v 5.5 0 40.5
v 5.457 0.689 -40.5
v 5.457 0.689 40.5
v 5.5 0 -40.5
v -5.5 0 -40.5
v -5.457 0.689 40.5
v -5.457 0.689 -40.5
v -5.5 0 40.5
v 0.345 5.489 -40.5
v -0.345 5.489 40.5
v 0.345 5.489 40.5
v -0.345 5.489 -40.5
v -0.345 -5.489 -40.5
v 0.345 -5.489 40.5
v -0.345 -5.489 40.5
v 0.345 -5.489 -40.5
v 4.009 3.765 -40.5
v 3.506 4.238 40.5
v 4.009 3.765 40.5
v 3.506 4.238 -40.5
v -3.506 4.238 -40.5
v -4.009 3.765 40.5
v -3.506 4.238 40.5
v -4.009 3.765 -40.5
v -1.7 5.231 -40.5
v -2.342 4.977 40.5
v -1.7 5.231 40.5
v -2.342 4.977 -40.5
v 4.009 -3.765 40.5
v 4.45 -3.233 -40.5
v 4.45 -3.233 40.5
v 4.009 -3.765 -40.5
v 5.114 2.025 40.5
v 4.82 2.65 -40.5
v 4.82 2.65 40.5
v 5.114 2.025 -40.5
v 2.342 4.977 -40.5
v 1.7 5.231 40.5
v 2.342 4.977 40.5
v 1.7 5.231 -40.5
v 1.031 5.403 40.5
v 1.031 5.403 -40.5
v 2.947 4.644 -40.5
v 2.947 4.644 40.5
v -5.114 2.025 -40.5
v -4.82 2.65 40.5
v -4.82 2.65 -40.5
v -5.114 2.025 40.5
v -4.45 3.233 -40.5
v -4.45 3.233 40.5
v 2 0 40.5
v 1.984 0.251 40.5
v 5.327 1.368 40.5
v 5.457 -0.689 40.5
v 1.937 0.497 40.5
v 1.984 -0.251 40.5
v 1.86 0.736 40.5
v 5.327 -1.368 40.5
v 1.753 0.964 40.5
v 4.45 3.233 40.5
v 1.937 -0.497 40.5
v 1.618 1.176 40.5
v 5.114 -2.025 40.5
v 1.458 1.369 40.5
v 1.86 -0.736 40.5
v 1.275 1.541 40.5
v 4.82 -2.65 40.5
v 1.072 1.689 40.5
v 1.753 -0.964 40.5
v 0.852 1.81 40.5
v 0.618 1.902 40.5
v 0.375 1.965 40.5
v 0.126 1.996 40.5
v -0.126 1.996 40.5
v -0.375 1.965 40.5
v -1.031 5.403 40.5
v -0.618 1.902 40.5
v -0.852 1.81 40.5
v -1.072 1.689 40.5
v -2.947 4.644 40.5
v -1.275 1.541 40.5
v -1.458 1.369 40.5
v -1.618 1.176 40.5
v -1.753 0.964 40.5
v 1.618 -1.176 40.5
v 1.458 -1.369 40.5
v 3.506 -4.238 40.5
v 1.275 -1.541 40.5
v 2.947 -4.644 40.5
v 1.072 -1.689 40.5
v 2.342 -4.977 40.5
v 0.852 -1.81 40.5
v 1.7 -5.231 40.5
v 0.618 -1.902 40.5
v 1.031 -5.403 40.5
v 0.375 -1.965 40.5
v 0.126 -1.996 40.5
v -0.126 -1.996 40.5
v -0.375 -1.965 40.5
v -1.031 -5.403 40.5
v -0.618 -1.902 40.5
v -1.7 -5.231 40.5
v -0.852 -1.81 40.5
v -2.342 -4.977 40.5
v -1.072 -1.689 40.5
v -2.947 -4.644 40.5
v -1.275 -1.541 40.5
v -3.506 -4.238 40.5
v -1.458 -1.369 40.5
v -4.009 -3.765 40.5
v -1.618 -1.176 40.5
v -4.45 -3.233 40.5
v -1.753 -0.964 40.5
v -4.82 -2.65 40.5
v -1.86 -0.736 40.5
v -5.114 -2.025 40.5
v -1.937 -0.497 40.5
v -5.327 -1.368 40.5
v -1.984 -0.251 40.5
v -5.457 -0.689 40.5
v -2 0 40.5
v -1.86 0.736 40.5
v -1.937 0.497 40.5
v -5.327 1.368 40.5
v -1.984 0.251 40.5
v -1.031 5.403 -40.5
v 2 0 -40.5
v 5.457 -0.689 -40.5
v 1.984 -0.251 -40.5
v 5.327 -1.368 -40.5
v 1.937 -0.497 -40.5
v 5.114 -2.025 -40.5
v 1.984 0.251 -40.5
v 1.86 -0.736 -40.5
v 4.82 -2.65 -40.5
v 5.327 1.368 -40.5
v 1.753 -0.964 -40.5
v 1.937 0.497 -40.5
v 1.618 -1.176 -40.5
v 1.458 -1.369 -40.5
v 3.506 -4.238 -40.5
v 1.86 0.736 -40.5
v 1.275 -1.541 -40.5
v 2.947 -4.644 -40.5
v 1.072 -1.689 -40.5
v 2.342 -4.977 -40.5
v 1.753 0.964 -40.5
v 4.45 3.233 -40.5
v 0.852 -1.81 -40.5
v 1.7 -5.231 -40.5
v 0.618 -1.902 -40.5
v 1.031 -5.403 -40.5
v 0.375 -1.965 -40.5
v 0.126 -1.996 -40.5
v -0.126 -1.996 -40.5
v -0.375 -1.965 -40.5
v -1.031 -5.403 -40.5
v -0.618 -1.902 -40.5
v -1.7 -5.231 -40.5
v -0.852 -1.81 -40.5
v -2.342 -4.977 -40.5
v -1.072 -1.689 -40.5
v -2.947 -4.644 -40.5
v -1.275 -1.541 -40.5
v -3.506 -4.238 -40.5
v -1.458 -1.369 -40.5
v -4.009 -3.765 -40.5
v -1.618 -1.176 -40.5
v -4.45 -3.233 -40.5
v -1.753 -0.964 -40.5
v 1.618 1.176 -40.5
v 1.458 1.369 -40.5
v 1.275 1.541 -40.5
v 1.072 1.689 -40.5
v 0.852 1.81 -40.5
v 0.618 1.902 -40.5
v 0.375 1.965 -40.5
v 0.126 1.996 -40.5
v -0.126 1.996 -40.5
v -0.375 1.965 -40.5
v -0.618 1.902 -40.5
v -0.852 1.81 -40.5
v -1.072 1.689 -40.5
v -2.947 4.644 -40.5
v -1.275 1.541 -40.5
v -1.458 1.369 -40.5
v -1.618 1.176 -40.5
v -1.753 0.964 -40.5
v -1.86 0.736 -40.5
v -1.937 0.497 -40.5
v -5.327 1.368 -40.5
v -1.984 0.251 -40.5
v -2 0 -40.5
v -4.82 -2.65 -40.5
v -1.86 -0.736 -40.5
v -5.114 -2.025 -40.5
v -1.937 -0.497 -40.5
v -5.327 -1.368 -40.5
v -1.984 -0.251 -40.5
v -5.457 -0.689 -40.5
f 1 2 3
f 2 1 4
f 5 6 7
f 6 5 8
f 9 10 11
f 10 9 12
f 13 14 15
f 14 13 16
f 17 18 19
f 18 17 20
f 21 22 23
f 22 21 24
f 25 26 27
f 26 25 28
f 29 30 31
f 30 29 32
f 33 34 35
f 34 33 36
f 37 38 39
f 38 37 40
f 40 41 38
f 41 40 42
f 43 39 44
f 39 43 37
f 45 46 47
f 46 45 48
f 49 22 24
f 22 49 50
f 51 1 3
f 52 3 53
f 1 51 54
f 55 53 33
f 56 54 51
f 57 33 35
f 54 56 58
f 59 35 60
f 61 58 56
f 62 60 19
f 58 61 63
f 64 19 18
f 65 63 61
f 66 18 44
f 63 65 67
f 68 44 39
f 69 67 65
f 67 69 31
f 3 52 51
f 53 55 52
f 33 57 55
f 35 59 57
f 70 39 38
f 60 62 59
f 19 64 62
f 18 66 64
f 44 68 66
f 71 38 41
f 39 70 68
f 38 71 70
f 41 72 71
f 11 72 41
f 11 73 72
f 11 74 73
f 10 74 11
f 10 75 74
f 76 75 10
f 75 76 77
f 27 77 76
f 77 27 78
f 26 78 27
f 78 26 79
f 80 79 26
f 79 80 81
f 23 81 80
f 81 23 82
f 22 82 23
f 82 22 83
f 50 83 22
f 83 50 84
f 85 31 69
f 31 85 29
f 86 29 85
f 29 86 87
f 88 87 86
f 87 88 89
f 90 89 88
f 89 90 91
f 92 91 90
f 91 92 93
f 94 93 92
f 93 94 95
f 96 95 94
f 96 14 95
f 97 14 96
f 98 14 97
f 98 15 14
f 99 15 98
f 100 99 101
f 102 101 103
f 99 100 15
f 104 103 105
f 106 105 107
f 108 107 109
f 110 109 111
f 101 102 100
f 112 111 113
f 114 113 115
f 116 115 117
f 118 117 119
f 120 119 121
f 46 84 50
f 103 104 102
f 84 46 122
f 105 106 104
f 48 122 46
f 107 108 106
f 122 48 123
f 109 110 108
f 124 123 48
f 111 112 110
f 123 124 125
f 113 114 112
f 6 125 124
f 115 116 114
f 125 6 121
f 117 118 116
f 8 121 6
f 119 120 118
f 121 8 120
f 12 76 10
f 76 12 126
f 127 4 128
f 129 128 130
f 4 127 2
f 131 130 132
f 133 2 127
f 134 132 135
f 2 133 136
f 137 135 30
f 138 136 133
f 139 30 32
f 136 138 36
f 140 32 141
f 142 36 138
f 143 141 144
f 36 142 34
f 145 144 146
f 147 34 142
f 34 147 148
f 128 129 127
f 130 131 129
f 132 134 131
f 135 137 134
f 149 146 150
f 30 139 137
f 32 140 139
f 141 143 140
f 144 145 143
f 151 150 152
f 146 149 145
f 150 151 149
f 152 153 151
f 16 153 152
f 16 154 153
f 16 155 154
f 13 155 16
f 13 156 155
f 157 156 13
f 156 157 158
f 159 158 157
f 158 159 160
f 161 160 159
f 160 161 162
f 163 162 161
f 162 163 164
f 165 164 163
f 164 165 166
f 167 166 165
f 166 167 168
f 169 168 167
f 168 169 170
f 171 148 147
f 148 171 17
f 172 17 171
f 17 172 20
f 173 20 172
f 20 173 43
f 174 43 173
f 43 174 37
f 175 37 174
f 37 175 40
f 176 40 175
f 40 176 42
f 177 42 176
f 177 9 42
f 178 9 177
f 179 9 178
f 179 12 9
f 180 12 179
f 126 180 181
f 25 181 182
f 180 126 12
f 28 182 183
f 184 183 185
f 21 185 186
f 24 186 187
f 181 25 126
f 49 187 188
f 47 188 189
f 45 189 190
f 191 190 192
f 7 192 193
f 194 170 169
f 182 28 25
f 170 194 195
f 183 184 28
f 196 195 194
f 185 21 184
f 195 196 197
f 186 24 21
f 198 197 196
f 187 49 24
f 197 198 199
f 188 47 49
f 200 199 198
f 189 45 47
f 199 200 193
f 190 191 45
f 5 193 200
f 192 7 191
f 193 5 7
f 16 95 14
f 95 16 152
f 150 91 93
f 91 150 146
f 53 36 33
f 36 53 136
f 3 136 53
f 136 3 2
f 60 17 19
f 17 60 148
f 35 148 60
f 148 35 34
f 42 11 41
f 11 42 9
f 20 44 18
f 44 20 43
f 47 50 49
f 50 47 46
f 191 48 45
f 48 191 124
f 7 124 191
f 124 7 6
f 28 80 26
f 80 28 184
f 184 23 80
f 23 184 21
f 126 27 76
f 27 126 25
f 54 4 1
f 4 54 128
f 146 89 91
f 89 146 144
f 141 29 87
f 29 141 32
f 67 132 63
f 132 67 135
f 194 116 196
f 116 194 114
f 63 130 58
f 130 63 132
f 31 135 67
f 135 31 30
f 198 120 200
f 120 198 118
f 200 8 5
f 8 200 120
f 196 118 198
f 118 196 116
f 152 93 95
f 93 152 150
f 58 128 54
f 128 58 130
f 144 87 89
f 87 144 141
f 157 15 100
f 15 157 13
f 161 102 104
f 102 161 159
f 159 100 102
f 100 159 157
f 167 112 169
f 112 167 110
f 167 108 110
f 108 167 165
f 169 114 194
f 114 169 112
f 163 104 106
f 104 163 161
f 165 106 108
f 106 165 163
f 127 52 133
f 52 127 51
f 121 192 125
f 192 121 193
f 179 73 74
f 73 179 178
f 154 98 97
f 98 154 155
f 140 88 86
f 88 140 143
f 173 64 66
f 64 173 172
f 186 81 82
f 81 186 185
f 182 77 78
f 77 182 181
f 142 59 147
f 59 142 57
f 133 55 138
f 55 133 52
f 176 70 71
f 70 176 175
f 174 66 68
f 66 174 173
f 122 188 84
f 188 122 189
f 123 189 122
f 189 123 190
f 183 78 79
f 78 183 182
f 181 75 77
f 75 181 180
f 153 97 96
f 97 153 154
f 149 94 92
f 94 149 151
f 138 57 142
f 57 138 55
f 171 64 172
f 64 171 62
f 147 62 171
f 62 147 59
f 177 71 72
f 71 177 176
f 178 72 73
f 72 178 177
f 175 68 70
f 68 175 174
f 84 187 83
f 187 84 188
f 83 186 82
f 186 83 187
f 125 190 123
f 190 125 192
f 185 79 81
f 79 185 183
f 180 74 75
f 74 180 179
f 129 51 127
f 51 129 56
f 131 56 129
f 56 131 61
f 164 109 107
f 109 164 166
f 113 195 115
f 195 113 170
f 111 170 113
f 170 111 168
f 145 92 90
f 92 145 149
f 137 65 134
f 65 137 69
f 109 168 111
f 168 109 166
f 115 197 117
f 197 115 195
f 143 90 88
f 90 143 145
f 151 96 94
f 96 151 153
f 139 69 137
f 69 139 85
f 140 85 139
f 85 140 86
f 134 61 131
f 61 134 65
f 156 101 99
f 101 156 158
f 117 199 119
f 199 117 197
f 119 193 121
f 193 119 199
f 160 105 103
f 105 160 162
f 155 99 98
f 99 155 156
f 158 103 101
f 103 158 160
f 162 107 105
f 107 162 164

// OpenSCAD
$fn = 50;


difference() {
	union() {
		translate(v = [0, 0, -40.5000000000]) {
			cylinder(h = 81, r = 5.5000000000);
		}
	}
	union() {
		translate(v = [0, 0, -100.0000000000]) {
			cylinder(h = 200, r = 2);
		}
	}
}
